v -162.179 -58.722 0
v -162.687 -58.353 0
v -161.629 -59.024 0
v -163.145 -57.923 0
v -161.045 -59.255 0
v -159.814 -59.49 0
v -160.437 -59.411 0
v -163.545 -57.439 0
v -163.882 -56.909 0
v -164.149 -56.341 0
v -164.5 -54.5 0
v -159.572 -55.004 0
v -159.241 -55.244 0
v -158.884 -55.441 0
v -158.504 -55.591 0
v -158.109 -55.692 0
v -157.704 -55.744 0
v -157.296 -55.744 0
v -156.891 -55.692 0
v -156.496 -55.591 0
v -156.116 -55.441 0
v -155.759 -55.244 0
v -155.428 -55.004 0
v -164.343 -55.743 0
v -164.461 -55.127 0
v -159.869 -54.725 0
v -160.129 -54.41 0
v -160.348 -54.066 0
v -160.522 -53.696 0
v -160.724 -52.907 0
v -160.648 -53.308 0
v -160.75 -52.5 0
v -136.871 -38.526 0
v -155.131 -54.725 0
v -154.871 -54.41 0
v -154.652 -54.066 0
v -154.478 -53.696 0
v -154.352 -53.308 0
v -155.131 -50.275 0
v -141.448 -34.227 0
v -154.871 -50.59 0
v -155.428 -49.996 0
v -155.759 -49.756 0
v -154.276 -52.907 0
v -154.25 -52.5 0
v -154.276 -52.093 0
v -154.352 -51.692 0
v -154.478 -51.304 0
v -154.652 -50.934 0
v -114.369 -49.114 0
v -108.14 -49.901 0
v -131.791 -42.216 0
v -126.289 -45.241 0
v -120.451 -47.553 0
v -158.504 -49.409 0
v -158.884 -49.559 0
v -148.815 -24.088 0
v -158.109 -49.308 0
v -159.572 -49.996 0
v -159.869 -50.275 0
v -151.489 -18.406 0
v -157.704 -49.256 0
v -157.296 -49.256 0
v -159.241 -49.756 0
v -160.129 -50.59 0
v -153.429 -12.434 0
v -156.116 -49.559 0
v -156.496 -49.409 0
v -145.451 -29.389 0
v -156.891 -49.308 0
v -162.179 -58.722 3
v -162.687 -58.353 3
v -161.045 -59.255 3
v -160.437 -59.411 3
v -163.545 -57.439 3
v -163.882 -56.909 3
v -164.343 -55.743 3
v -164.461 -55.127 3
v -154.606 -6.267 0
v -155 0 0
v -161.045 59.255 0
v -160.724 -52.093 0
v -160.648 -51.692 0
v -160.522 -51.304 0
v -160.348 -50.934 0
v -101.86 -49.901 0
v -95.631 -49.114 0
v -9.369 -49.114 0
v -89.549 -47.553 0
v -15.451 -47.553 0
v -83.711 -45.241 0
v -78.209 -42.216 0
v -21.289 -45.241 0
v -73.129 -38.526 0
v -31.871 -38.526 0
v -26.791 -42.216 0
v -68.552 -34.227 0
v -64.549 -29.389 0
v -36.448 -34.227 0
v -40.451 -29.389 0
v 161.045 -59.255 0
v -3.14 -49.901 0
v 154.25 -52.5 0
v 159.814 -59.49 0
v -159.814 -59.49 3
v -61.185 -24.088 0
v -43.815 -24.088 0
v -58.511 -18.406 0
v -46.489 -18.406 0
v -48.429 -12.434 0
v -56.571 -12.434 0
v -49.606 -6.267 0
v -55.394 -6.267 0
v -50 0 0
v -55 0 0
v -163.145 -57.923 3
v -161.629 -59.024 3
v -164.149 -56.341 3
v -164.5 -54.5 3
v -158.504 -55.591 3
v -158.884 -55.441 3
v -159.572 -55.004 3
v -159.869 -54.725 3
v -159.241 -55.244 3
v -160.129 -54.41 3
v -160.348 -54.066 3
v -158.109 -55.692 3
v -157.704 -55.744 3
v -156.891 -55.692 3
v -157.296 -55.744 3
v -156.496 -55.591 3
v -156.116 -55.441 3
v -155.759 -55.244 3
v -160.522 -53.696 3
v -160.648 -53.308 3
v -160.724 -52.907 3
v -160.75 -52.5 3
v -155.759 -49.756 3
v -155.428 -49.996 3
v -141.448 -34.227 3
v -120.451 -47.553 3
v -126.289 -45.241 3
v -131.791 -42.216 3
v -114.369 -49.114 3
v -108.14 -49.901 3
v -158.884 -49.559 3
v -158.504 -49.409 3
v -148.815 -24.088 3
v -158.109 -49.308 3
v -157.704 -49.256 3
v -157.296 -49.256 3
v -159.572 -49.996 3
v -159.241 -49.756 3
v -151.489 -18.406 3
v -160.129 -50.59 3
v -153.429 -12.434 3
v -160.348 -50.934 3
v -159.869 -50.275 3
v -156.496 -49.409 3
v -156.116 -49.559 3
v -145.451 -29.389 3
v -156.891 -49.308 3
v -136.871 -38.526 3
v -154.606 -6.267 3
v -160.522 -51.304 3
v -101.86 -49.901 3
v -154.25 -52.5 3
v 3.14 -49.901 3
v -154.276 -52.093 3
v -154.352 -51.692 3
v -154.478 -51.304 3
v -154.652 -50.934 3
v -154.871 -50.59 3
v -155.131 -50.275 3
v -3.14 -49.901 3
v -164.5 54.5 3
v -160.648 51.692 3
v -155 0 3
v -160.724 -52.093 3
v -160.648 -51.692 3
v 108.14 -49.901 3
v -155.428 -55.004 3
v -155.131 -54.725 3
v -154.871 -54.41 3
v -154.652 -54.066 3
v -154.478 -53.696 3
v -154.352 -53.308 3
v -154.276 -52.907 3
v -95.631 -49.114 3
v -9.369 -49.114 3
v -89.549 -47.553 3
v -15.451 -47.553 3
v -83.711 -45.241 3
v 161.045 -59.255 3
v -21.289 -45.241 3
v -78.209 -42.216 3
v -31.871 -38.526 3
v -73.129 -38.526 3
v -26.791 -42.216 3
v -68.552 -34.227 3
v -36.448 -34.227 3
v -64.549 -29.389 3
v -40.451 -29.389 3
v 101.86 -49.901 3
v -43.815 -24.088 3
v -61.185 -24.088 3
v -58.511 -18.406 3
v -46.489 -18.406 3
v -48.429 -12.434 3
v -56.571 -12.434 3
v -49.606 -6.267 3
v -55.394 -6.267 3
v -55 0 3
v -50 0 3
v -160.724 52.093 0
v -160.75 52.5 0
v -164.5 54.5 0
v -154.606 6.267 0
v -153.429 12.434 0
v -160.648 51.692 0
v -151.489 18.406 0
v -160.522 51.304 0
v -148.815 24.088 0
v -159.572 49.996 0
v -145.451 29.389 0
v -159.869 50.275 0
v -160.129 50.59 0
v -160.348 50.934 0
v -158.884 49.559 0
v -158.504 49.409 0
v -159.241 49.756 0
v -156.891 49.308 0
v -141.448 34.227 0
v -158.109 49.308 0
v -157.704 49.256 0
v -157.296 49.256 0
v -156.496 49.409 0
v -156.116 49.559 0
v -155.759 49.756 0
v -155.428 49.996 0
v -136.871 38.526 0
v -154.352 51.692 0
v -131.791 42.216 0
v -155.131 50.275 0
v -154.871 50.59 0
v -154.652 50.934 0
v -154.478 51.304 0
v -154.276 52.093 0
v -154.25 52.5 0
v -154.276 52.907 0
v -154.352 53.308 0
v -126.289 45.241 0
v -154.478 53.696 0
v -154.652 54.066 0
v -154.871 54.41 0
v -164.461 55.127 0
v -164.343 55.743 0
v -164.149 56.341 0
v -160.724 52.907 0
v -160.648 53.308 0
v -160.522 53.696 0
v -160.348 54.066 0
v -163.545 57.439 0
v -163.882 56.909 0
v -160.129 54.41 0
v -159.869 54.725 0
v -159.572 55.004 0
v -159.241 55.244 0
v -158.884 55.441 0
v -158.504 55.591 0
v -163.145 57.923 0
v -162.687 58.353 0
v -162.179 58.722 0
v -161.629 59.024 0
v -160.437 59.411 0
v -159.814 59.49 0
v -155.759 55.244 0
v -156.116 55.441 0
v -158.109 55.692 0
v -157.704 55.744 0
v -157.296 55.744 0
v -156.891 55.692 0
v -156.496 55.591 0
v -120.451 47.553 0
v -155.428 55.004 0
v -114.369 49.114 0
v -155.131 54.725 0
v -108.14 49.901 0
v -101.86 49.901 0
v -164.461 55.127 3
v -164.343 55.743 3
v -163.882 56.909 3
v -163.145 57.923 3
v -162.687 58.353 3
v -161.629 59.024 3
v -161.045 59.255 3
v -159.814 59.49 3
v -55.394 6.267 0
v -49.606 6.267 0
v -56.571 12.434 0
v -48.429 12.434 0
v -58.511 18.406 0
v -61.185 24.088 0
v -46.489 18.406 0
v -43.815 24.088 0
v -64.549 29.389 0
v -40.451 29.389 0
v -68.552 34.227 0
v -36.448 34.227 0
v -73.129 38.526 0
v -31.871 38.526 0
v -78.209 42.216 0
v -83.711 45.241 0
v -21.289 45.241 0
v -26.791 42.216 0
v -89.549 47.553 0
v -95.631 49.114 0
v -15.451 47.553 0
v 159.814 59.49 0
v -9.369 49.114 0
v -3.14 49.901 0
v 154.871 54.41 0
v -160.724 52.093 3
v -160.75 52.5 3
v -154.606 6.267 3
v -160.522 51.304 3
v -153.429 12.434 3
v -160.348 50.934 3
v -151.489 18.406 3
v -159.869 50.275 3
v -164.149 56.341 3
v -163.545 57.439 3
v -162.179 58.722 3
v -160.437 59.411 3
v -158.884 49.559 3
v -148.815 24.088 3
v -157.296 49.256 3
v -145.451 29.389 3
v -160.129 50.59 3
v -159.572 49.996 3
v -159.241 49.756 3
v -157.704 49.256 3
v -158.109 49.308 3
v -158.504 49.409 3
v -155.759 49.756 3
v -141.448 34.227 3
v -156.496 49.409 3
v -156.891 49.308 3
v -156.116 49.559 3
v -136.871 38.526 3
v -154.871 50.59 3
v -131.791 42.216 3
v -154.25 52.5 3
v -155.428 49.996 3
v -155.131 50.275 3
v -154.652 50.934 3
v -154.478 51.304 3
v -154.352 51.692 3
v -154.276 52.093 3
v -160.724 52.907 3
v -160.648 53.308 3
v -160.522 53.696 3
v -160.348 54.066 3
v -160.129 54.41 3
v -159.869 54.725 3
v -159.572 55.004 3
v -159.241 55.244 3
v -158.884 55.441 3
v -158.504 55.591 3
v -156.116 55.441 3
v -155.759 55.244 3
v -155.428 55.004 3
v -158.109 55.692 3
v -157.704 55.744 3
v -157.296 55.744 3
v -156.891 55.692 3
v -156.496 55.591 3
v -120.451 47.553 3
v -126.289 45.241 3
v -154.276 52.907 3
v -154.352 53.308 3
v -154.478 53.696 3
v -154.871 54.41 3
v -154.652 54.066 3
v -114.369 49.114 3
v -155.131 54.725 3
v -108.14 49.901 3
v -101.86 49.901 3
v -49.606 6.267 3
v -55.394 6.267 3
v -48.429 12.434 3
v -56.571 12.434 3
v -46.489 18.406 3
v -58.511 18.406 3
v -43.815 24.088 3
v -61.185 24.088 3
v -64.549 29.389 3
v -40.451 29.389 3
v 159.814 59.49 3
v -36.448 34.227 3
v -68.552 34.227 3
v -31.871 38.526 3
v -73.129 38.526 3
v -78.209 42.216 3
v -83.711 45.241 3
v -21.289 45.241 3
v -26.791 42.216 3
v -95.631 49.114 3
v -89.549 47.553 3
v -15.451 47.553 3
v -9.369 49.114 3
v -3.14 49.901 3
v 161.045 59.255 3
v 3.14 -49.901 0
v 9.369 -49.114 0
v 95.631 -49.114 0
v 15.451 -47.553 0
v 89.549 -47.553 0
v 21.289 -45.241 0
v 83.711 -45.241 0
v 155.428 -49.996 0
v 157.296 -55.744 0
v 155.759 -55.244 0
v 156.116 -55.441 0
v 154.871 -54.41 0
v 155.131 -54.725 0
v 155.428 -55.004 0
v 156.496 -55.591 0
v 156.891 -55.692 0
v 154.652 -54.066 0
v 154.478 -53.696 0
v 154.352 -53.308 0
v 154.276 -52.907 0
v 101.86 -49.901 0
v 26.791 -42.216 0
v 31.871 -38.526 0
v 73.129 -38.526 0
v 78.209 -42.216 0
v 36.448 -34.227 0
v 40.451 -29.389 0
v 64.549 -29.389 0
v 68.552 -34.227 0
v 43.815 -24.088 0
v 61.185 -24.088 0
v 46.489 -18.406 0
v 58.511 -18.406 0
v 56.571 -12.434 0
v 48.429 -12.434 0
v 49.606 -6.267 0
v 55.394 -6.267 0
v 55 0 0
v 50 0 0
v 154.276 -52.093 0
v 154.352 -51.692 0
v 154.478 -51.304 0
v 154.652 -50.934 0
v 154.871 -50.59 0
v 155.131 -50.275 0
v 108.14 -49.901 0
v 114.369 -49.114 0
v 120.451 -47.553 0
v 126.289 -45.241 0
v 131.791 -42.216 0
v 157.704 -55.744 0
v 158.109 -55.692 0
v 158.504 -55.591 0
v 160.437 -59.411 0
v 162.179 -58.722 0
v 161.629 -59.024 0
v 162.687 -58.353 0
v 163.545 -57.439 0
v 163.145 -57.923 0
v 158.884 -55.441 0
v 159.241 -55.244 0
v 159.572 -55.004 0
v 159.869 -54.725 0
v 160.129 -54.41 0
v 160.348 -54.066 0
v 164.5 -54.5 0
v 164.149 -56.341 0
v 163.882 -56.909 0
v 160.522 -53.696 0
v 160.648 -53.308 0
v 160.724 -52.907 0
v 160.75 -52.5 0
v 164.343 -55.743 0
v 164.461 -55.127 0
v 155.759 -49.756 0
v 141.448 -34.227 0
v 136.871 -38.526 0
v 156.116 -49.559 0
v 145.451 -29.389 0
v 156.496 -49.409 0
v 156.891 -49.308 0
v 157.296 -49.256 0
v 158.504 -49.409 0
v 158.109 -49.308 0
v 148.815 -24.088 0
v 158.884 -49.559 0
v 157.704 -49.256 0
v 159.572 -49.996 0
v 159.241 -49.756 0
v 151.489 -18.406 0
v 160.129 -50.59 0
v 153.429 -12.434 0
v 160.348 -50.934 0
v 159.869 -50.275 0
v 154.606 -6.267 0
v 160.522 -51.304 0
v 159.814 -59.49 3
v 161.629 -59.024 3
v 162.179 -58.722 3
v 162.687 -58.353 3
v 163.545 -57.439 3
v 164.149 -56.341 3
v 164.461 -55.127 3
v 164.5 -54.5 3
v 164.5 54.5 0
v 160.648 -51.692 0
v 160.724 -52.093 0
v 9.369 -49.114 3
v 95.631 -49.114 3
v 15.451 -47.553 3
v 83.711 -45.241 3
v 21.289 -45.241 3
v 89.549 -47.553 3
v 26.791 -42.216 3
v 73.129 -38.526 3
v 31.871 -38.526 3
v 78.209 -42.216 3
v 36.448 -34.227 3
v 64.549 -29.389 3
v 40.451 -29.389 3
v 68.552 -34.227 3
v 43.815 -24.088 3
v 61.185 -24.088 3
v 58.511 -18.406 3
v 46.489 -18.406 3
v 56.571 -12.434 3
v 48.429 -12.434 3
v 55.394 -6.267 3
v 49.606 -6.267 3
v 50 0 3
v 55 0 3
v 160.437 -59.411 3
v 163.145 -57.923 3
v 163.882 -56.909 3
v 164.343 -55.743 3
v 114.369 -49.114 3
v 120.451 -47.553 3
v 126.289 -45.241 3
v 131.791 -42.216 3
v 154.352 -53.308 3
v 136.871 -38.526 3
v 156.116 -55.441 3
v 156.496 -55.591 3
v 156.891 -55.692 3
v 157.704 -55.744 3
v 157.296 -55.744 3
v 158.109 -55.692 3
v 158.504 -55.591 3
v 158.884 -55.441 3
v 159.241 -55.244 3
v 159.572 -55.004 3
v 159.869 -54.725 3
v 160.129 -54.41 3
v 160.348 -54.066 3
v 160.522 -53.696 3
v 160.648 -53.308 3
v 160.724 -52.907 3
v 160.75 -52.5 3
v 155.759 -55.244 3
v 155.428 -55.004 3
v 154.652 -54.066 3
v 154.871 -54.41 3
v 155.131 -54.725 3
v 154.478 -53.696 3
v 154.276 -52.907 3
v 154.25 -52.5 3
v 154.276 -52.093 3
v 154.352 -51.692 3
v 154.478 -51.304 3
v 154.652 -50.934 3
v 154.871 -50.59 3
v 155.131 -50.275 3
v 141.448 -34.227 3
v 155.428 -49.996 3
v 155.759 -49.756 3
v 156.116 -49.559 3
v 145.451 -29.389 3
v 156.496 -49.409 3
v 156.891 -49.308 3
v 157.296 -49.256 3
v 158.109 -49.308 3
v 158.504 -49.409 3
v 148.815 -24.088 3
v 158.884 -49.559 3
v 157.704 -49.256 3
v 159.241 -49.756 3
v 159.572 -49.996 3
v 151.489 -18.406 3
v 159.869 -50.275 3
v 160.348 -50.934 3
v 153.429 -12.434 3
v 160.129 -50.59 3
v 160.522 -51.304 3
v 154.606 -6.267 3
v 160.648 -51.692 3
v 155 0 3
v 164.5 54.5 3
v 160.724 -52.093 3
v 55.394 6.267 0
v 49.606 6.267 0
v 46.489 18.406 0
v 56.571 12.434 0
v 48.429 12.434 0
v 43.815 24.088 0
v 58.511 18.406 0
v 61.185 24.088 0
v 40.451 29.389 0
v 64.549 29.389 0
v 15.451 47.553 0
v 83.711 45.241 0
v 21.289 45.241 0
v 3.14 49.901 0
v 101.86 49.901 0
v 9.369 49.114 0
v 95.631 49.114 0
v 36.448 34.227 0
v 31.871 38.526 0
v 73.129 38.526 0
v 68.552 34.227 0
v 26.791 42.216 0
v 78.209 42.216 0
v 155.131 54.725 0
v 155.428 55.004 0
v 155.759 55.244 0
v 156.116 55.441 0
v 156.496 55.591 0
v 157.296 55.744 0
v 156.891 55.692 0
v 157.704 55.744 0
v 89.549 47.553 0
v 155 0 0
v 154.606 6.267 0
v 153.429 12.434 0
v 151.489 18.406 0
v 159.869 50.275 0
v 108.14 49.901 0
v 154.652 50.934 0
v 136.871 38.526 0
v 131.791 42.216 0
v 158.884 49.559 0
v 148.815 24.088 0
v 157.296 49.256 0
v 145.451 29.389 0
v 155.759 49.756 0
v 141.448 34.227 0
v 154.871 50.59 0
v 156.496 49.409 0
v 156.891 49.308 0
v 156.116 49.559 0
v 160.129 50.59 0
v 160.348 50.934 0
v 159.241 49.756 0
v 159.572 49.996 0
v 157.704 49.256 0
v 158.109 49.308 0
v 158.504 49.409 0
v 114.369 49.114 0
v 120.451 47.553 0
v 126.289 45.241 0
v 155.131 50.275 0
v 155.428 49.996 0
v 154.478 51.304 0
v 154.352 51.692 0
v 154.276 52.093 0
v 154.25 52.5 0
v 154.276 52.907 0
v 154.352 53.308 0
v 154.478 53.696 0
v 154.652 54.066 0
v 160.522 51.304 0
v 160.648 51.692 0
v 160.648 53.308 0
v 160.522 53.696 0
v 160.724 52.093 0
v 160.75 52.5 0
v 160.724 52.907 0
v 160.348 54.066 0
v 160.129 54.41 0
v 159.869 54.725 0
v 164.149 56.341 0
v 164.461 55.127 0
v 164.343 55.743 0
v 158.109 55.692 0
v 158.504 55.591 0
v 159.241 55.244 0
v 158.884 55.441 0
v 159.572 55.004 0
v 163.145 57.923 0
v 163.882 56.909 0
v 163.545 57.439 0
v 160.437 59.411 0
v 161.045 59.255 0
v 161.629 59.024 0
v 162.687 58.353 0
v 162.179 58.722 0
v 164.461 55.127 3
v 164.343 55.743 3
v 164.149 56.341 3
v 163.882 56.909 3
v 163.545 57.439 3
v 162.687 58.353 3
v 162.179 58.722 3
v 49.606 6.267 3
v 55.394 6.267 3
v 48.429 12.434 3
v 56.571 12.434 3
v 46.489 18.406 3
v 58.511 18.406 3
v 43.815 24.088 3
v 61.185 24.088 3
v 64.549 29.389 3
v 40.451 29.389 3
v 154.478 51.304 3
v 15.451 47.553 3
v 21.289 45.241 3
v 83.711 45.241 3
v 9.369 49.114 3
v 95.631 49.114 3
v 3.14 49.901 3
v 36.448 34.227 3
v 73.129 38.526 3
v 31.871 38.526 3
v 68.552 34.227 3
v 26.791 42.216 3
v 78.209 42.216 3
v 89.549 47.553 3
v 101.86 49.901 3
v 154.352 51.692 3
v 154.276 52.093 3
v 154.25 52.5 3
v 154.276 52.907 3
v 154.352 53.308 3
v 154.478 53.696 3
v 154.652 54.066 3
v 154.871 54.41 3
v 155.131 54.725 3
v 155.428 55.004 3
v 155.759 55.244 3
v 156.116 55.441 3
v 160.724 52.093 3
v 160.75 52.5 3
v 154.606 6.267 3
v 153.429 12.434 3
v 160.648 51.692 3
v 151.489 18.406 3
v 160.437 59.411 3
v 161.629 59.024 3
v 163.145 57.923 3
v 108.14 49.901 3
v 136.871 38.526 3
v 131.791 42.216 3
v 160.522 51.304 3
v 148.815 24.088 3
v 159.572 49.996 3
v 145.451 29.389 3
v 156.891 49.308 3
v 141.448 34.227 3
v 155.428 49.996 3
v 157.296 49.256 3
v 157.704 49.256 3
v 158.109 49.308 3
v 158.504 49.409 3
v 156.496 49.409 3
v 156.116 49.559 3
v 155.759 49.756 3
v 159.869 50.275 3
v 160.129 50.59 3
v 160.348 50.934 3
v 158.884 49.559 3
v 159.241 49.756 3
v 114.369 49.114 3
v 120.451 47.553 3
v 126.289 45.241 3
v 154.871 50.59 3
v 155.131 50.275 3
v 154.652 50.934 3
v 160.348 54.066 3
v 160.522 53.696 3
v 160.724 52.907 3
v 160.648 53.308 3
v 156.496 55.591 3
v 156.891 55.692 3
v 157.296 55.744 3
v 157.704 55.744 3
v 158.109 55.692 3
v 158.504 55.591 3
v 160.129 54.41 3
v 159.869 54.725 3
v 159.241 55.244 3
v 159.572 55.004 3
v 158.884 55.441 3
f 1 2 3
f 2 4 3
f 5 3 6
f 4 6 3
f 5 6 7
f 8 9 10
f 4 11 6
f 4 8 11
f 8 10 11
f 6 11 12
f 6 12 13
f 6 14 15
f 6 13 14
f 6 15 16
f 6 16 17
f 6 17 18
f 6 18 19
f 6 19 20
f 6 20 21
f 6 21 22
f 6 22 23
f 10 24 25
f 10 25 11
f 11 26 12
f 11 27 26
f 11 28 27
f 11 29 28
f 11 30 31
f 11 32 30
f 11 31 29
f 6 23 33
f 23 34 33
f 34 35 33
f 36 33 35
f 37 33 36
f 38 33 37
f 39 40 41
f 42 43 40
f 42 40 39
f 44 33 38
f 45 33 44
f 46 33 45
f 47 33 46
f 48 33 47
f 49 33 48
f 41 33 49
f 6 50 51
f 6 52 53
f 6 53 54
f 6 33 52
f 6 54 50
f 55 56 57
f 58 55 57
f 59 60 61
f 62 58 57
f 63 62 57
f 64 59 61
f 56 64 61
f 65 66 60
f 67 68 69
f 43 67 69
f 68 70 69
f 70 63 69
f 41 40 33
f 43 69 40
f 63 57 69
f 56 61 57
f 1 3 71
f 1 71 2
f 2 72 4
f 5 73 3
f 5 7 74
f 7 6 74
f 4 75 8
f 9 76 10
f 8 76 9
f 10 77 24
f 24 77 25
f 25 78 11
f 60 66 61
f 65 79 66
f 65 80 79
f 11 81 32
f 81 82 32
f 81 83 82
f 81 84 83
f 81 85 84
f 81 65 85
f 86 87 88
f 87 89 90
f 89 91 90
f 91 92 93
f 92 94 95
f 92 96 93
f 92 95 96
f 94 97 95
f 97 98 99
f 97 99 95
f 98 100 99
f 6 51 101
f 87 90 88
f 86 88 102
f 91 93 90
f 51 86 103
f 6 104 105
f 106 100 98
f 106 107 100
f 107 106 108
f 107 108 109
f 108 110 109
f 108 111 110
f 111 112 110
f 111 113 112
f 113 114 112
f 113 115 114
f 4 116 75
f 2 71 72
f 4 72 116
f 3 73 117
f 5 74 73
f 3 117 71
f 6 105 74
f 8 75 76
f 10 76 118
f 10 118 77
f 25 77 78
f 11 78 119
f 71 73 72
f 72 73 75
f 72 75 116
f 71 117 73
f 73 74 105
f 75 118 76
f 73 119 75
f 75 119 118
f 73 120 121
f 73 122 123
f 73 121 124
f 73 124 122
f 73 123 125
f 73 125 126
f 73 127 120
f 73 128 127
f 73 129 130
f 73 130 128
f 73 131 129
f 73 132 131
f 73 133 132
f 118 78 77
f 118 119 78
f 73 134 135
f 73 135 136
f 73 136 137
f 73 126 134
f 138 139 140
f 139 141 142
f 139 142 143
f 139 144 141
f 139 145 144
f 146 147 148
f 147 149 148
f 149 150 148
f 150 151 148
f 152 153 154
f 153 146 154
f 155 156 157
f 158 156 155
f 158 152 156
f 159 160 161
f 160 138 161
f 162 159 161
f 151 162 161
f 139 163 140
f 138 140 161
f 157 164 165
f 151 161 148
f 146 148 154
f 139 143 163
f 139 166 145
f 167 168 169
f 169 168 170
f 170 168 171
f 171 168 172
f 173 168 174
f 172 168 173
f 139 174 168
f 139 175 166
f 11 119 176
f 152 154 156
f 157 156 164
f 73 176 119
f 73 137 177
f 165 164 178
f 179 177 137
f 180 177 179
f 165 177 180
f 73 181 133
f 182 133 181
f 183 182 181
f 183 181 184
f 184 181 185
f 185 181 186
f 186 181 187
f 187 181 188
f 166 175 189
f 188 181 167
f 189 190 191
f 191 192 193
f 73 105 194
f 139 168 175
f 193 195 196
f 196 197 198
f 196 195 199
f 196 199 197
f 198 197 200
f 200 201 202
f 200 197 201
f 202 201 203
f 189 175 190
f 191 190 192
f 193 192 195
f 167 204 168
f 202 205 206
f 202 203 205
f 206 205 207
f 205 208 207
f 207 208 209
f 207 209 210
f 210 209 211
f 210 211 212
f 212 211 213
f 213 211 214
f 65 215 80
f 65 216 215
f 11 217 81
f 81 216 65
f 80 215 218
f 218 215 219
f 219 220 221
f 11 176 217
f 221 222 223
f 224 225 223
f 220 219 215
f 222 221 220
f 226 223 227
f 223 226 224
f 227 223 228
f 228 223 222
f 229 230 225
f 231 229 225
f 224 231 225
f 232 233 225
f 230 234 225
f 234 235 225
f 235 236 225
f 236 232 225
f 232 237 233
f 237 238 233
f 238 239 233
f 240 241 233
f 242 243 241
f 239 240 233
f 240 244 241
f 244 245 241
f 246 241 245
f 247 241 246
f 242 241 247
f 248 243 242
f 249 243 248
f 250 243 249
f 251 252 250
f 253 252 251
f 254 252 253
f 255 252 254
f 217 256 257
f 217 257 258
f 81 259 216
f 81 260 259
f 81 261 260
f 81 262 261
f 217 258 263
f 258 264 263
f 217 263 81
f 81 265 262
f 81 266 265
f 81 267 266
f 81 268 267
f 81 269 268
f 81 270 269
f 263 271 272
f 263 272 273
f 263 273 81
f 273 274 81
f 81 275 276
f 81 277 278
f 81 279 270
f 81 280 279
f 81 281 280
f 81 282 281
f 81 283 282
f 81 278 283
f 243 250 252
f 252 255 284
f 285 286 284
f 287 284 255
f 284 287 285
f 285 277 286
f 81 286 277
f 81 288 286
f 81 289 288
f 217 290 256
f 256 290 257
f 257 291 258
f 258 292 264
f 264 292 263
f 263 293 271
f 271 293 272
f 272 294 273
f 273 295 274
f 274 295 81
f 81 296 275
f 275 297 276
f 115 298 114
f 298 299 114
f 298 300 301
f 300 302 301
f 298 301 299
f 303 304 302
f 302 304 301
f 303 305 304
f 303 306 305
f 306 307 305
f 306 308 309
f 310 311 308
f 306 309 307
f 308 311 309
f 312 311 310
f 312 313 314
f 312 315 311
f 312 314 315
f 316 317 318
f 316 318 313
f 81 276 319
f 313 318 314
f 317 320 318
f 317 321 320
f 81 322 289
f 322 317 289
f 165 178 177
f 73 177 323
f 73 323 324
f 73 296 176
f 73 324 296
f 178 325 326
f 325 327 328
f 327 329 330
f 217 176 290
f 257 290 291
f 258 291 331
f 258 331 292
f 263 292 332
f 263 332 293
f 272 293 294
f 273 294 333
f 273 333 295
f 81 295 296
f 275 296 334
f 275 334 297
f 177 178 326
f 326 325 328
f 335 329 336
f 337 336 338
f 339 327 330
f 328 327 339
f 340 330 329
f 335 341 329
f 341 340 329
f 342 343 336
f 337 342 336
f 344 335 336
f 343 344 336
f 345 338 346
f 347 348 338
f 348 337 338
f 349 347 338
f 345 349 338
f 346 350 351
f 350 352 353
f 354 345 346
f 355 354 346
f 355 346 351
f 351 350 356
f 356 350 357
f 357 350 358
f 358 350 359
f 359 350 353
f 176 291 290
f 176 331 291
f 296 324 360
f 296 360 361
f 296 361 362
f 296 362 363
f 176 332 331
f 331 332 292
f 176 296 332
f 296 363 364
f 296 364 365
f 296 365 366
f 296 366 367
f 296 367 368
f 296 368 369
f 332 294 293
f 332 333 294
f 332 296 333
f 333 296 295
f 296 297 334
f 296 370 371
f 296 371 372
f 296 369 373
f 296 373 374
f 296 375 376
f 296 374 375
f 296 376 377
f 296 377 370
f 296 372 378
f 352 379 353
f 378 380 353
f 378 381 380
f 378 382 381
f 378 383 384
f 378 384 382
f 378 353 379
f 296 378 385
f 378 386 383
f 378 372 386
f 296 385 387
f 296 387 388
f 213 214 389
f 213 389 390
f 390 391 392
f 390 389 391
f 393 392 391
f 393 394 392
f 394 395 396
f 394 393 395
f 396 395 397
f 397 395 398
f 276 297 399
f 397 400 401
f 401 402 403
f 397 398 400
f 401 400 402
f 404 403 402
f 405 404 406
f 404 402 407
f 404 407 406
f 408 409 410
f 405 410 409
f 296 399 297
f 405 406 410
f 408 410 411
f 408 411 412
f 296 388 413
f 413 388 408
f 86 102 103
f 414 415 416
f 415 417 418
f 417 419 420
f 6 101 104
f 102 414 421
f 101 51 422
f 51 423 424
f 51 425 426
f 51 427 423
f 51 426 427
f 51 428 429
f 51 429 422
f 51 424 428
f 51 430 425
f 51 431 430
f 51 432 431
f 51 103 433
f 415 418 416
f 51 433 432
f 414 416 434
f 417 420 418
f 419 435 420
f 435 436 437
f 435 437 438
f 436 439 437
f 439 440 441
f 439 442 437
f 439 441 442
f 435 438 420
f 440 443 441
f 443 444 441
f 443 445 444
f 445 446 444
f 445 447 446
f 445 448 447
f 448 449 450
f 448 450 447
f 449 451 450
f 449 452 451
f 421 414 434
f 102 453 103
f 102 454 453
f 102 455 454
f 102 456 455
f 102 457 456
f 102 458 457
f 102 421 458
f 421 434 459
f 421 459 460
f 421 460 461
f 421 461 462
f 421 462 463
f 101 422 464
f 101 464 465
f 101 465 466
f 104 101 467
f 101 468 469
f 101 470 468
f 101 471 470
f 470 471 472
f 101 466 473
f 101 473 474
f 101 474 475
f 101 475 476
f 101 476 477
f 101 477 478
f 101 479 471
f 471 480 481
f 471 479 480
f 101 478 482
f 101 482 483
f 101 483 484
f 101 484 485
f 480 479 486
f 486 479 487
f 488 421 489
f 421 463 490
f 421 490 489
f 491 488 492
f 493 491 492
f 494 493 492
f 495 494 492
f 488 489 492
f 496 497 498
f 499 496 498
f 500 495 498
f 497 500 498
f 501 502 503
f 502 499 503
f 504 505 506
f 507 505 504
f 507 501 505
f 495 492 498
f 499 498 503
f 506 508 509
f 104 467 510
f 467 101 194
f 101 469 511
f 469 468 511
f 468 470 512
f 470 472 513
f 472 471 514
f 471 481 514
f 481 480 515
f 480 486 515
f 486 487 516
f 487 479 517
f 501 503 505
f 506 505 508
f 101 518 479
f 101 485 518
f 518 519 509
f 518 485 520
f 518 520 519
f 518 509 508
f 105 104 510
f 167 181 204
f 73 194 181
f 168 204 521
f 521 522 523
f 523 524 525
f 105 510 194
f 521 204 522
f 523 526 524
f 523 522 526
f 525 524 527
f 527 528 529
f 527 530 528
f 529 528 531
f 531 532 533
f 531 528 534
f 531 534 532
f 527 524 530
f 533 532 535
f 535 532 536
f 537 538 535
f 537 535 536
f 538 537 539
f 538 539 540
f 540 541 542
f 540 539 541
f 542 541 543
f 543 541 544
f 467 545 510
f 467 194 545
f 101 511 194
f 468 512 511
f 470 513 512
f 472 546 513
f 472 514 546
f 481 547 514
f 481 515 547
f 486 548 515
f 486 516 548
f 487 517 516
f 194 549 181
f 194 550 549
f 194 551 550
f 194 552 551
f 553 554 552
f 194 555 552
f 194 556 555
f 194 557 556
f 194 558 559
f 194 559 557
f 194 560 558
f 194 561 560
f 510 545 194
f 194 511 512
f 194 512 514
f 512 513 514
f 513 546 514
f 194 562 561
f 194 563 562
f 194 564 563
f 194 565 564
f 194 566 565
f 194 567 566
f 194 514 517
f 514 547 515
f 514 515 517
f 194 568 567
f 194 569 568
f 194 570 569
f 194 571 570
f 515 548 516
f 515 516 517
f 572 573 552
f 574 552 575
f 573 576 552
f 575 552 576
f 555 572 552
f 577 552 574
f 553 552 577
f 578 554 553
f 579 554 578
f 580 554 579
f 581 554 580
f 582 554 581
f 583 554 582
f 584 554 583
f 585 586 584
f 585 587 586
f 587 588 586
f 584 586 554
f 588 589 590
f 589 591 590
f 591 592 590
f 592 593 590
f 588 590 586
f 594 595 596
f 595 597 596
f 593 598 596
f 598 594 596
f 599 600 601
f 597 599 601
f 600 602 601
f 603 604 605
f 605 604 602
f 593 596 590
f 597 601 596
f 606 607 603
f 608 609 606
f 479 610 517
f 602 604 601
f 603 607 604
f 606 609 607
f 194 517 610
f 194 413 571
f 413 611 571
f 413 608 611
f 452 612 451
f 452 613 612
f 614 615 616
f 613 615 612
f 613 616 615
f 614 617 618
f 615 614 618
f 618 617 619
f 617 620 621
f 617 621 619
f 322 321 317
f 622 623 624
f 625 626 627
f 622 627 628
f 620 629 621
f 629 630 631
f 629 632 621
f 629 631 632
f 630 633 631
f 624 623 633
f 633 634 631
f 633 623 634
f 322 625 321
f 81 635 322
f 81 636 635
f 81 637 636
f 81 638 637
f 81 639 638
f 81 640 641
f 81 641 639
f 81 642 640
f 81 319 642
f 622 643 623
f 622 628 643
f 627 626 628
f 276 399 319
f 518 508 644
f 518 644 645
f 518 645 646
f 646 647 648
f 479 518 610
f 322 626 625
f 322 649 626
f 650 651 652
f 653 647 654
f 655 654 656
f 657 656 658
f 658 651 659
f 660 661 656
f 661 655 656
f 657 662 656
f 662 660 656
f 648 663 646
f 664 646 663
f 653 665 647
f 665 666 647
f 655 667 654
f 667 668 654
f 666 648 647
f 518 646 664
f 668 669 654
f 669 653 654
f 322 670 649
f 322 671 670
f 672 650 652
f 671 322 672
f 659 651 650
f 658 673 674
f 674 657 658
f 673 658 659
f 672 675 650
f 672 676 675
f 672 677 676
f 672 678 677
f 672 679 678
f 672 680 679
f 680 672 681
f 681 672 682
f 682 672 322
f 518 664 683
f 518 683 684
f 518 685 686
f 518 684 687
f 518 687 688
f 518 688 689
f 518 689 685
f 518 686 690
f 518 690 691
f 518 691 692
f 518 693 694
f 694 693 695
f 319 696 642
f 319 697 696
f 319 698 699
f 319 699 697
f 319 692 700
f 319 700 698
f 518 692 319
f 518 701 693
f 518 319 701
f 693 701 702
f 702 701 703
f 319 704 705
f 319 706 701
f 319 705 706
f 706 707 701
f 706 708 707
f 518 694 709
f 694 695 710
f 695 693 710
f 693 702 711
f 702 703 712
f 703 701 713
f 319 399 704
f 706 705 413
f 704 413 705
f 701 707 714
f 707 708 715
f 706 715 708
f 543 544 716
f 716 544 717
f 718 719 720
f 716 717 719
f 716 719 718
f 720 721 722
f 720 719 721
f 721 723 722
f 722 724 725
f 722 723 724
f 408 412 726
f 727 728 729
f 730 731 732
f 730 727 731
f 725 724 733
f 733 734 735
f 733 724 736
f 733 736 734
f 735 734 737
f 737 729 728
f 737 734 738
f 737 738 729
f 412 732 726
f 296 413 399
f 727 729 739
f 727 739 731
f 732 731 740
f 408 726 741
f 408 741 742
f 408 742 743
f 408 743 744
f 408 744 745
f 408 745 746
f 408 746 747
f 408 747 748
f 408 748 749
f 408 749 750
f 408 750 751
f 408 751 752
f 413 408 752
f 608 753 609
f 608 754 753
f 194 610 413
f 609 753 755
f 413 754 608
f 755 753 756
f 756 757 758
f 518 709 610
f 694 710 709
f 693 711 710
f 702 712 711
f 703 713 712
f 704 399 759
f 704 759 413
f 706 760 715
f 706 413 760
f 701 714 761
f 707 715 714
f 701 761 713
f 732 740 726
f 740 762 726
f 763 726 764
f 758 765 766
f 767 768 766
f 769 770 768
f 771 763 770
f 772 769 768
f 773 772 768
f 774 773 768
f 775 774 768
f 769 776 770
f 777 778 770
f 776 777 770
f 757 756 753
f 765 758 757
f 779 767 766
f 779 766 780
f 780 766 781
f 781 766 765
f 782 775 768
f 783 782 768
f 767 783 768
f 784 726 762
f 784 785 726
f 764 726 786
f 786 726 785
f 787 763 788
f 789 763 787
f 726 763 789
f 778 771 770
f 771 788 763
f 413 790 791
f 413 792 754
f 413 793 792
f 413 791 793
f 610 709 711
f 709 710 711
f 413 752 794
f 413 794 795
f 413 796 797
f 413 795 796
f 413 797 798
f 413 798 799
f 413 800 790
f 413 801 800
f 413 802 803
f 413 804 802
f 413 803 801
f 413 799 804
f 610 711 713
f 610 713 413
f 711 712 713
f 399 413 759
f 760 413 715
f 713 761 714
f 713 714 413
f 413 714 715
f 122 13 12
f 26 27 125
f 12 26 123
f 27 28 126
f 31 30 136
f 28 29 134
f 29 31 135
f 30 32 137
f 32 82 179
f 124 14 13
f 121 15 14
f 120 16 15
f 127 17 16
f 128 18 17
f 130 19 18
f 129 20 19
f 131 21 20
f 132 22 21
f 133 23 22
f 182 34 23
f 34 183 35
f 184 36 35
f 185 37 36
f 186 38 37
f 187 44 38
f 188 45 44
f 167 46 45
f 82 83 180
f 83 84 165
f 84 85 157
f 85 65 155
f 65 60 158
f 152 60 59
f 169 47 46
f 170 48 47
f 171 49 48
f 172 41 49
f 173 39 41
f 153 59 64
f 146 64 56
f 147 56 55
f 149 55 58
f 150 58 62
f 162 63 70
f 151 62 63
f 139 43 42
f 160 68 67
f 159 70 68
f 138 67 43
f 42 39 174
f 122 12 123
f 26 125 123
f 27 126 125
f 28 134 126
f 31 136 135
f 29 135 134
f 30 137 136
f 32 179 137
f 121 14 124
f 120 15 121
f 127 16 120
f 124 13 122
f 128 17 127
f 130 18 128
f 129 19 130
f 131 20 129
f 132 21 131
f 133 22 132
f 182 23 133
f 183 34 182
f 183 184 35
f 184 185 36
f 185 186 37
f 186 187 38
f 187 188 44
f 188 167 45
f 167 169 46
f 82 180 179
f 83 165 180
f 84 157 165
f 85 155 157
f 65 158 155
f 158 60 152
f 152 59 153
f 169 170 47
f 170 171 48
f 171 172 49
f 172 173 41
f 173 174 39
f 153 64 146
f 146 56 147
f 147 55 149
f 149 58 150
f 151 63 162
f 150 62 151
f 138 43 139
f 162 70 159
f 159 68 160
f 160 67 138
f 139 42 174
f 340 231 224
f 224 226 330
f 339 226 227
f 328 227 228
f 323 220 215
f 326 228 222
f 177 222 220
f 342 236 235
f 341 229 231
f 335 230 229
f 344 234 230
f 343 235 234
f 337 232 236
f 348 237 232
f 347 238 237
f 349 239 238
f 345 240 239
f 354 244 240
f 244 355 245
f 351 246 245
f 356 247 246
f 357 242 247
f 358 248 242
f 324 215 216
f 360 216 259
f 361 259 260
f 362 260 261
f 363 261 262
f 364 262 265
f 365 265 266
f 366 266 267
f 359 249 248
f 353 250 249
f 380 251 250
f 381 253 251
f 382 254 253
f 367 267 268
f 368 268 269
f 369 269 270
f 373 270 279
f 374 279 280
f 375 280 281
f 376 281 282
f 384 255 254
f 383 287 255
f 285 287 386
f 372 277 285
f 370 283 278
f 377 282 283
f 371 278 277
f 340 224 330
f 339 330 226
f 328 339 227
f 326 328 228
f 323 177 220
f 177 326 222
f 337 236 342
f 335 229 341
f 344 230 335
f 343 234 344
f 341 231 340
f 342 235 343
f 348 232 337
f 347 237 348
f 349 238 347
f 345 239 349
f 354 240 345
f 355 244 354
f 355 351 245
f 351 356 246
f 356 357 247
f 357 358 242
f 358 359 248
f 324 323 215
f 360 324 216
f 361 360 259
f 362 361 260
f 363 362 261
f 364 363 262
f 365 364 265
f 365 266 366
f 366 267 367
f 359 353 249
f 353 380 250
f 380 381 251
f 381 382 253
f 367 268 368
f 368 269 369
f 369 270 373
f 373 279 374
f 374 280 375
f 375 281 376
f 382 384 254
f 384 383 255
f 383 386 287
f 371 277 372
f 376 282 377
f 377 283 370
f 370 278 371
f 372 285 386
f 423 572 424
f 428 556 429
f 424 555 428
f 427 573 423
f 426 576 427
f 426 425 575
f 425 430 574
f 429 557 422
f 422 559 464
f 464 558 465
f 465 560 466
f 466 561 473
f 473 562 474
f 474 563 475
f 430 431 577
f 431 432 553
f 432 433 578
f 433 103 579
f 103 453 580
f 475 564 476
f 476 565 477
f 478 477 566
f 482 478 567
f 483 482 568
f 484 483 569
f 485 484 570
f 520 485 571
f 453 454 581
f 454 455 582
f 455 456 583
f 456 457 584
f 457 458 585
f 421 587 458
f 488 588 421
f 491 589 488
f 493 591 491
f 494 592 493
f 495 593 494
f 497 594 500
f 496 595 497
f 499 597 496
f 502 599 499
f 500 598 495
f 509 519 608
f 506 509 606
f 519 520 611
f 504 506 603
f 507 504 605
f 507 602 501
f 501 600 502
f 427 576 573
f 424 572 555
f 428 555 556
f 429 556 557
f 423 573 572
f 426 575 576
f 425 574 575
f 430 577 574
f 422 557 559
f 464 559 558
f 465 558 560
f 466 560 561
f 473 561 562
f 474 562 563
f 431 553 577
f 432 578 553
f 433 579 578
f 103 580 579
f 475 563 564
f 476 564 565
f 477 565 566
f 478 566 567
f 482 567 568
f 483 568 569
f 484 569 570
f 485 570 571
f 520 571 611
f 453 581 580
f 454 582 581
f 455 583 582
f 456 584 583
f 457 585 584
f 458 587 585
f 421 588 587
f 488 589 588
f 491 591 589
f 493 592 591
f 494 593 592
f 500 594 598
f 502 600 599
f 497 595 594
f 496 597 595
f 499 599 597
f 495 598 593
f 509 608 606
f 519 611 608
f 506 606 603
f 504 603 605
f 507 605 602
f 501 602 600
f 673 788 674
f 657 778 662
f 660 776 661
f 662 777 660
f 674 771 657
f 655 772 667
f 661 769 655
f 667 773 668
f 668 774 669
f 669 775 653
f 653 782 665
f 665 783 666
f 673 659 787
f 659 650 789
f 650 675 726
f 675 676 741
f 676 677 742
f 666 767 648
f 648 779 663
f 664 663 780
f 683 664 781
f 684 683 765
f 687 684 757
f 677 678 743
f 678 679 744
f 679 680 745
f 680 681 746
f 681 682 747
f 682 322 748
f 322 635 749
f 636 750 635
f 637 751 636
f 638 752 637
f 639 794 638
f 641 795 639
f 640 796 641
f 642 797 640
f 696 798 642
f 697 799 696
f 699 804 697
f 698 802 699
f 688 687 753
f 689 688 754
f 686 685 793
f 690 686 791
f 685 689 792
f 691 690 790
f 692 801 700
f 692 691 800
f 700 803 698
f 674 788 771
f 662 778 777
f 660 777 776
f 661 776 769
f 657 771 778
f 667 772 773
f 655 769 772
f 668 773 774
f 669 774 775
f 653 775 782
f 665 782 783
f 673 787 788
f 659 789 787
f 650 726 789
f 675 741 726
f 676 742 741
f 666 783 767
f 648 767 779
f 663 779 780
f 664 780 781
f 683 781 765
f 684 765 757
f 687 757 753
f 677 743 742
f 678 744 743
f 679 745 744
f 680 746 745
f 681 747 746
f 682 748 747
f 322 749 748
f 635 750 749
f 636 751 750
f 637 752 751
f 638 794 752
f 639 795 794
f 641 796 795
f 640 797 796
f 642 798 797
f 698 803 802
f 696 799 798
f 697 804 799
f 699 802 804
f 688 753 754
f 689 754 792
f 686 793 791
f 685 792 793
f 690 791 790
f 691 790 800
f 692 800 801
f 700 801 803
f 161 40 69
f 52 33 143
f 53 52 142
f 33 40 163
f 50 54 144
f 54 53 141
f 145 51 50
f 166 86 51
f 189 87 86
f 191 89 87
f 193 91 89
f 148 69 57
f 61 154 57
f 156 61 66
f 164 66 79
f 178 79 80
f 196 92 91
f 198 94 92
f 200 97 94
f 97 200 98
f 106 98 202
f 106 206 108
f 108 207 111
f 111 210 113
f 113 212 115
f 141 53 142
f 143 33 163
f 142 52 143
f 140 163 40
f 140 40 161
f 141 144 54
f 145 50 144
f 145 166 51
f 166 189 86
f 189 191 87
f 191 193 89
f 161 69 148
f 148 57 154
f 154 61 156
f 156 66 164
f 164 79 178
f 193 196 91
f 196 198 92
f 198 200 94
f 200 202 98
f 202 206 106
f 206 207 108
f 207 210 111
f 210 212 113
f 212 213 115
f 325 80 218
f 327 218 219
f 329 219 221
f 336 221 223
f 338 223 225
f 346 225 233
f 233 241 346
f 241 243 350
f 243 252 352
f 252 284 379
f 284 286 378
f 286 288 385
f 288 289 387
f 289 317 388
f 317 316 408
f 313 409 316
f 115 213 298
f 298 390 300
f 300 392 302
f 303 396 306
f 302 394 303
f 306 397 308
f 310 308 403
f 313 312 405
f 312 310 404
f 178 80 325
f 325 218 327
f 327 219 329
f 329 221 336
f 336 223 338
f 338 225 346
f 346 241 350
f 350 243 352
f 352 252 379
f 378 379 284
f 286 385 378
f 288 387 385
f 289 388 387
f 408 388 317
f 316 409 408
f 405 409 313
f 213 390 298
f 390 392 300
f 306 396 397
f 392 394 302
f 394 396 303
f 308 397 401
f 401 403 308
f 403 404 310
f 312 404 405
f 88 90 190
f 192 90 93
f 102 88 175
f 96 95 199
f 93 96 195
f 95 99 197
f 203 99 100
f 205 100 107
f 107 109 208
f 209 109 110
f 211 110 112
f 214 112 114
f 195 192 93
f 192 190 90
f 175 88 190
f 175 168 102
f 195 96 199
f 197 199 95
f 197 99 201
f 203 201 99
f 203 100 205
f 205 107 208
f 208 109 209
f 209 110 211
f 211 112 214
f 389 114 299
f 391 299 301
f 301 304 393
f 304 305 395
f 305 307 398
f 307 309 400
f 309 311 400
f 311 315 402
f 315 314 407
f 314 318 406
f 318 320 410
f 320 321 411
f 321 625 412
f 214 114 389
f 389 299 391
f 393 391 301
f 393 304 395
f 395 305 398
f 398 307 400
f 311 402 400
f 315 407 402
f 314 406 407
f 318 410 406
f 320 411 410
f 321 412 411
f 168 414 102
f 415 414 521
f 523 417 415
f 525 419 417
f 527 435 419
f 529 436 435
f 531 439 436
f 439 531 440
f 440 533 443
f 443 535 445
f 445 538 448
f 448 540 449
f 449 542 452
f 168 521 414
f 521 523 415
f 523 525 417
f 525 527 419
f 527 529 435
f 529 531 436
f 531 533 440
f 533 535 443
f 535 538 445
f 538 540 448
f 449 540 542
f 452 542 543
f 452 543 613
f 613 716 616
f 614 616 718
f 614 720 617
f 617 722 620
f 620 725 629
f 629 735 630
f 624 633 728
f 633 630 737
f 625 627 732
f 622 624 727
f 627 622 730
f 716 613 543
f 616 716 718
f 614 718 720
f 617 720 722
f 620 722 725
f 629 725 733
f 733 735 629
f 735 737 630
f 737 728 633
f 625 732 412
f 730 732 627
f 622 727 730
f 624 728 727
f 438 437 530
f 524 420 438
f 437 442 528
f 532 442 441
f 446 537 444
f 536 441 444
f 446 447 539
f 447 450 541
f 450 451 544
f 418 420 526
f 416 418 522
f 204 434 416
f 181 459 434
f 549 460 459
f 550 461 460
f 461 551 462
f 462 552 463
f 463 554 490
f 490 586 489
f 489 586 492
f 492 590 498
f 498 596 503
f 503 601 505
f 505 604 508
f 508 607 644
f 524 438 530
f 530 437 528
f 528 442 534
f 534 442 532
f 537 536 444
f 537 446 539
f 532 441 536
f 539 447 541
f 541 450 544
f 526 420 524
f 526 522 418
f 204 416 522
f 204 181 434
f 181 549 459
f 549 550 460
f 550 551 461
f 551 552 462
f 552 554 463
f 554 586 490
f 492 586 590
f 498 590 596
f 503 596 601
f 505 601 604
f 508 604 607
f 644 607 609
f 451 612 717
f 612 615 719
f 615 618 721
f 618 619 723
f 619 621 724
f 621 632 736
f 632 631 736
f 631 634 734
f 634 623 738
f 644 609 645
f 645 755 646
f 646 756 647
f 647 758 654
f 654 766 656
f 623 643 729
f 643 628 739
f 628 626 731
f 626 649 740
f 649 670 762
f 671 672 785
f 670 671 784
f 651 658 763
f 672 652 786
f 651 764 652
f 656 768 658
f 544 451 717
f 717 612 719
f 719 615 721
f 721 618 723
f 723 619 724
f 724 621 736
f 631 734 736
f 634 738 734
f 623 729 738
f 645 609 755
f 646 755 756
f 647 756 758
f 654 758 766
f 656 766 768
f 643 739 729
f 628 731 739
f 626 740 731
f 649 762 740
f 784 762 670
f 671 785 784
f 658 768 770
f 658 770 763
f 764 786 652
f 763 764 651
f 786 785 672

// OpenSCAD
$fn = 50;

difference() {
	union() {
		hull() {
			translate(v = [-159.5, 54.5, 0]) {
				cylinder(h = 3, r = 5);
			}
			translate(v = [159.5, 54.5, 0]) {
				cylinder(h = 3, r = 5);
			}
			translate(v = [-159.5, -54.5, 0]) {
				cylinder(h = 3, r = 5);
			}
			translate(v = [159.5, -54.5, 0]) {
				cylinder(h = 3, r = 5);
			}
		}
	}
	union() {
		translate(v = [-157.5, -52.5, -100.0]) {
			cylinder(h = 200, r = 3.25);
		}
		translate(v = [-157.5, 52.5, -100.0]) {
			cylinder(h = 200, r = 3.25);
		}
		translate(v = [157.5, -52.5, -100.0]) {
			cylinder(h = 200, r = 3.25);
		}
		translate(v = [157.5, 52.5, -100.0]) {
			cylinder(h = 200, r = 3.25);
		}
		translate(v = [-157.5, -52.5, -100.0]) {
			cylinder(h = 200, r = 1.8);
		}
		translate(v = [-157.5, 52.5, -100.0]) {
			cylinder(h = 200, r = 1.8);
		}
		translate(v = [157.5, -52.5, -100.0]) {
			cylinder(h = 200, r = 1.8);
		}
		translate(v = [157.5, 52.5, -100.0]) {
			cylinder(h = 200, r = 1.8);
		}
		translate(v = [-105.0, 0, 0.0]) {
			cylinder(h = 3, r = 50.0);
		}
		cylinder(h = 3, r = 50.0);
		translate(v = [105.0, 0, 0.0]) {
			cylinder(h = 3, r = 50.0);
		}
	}
}
